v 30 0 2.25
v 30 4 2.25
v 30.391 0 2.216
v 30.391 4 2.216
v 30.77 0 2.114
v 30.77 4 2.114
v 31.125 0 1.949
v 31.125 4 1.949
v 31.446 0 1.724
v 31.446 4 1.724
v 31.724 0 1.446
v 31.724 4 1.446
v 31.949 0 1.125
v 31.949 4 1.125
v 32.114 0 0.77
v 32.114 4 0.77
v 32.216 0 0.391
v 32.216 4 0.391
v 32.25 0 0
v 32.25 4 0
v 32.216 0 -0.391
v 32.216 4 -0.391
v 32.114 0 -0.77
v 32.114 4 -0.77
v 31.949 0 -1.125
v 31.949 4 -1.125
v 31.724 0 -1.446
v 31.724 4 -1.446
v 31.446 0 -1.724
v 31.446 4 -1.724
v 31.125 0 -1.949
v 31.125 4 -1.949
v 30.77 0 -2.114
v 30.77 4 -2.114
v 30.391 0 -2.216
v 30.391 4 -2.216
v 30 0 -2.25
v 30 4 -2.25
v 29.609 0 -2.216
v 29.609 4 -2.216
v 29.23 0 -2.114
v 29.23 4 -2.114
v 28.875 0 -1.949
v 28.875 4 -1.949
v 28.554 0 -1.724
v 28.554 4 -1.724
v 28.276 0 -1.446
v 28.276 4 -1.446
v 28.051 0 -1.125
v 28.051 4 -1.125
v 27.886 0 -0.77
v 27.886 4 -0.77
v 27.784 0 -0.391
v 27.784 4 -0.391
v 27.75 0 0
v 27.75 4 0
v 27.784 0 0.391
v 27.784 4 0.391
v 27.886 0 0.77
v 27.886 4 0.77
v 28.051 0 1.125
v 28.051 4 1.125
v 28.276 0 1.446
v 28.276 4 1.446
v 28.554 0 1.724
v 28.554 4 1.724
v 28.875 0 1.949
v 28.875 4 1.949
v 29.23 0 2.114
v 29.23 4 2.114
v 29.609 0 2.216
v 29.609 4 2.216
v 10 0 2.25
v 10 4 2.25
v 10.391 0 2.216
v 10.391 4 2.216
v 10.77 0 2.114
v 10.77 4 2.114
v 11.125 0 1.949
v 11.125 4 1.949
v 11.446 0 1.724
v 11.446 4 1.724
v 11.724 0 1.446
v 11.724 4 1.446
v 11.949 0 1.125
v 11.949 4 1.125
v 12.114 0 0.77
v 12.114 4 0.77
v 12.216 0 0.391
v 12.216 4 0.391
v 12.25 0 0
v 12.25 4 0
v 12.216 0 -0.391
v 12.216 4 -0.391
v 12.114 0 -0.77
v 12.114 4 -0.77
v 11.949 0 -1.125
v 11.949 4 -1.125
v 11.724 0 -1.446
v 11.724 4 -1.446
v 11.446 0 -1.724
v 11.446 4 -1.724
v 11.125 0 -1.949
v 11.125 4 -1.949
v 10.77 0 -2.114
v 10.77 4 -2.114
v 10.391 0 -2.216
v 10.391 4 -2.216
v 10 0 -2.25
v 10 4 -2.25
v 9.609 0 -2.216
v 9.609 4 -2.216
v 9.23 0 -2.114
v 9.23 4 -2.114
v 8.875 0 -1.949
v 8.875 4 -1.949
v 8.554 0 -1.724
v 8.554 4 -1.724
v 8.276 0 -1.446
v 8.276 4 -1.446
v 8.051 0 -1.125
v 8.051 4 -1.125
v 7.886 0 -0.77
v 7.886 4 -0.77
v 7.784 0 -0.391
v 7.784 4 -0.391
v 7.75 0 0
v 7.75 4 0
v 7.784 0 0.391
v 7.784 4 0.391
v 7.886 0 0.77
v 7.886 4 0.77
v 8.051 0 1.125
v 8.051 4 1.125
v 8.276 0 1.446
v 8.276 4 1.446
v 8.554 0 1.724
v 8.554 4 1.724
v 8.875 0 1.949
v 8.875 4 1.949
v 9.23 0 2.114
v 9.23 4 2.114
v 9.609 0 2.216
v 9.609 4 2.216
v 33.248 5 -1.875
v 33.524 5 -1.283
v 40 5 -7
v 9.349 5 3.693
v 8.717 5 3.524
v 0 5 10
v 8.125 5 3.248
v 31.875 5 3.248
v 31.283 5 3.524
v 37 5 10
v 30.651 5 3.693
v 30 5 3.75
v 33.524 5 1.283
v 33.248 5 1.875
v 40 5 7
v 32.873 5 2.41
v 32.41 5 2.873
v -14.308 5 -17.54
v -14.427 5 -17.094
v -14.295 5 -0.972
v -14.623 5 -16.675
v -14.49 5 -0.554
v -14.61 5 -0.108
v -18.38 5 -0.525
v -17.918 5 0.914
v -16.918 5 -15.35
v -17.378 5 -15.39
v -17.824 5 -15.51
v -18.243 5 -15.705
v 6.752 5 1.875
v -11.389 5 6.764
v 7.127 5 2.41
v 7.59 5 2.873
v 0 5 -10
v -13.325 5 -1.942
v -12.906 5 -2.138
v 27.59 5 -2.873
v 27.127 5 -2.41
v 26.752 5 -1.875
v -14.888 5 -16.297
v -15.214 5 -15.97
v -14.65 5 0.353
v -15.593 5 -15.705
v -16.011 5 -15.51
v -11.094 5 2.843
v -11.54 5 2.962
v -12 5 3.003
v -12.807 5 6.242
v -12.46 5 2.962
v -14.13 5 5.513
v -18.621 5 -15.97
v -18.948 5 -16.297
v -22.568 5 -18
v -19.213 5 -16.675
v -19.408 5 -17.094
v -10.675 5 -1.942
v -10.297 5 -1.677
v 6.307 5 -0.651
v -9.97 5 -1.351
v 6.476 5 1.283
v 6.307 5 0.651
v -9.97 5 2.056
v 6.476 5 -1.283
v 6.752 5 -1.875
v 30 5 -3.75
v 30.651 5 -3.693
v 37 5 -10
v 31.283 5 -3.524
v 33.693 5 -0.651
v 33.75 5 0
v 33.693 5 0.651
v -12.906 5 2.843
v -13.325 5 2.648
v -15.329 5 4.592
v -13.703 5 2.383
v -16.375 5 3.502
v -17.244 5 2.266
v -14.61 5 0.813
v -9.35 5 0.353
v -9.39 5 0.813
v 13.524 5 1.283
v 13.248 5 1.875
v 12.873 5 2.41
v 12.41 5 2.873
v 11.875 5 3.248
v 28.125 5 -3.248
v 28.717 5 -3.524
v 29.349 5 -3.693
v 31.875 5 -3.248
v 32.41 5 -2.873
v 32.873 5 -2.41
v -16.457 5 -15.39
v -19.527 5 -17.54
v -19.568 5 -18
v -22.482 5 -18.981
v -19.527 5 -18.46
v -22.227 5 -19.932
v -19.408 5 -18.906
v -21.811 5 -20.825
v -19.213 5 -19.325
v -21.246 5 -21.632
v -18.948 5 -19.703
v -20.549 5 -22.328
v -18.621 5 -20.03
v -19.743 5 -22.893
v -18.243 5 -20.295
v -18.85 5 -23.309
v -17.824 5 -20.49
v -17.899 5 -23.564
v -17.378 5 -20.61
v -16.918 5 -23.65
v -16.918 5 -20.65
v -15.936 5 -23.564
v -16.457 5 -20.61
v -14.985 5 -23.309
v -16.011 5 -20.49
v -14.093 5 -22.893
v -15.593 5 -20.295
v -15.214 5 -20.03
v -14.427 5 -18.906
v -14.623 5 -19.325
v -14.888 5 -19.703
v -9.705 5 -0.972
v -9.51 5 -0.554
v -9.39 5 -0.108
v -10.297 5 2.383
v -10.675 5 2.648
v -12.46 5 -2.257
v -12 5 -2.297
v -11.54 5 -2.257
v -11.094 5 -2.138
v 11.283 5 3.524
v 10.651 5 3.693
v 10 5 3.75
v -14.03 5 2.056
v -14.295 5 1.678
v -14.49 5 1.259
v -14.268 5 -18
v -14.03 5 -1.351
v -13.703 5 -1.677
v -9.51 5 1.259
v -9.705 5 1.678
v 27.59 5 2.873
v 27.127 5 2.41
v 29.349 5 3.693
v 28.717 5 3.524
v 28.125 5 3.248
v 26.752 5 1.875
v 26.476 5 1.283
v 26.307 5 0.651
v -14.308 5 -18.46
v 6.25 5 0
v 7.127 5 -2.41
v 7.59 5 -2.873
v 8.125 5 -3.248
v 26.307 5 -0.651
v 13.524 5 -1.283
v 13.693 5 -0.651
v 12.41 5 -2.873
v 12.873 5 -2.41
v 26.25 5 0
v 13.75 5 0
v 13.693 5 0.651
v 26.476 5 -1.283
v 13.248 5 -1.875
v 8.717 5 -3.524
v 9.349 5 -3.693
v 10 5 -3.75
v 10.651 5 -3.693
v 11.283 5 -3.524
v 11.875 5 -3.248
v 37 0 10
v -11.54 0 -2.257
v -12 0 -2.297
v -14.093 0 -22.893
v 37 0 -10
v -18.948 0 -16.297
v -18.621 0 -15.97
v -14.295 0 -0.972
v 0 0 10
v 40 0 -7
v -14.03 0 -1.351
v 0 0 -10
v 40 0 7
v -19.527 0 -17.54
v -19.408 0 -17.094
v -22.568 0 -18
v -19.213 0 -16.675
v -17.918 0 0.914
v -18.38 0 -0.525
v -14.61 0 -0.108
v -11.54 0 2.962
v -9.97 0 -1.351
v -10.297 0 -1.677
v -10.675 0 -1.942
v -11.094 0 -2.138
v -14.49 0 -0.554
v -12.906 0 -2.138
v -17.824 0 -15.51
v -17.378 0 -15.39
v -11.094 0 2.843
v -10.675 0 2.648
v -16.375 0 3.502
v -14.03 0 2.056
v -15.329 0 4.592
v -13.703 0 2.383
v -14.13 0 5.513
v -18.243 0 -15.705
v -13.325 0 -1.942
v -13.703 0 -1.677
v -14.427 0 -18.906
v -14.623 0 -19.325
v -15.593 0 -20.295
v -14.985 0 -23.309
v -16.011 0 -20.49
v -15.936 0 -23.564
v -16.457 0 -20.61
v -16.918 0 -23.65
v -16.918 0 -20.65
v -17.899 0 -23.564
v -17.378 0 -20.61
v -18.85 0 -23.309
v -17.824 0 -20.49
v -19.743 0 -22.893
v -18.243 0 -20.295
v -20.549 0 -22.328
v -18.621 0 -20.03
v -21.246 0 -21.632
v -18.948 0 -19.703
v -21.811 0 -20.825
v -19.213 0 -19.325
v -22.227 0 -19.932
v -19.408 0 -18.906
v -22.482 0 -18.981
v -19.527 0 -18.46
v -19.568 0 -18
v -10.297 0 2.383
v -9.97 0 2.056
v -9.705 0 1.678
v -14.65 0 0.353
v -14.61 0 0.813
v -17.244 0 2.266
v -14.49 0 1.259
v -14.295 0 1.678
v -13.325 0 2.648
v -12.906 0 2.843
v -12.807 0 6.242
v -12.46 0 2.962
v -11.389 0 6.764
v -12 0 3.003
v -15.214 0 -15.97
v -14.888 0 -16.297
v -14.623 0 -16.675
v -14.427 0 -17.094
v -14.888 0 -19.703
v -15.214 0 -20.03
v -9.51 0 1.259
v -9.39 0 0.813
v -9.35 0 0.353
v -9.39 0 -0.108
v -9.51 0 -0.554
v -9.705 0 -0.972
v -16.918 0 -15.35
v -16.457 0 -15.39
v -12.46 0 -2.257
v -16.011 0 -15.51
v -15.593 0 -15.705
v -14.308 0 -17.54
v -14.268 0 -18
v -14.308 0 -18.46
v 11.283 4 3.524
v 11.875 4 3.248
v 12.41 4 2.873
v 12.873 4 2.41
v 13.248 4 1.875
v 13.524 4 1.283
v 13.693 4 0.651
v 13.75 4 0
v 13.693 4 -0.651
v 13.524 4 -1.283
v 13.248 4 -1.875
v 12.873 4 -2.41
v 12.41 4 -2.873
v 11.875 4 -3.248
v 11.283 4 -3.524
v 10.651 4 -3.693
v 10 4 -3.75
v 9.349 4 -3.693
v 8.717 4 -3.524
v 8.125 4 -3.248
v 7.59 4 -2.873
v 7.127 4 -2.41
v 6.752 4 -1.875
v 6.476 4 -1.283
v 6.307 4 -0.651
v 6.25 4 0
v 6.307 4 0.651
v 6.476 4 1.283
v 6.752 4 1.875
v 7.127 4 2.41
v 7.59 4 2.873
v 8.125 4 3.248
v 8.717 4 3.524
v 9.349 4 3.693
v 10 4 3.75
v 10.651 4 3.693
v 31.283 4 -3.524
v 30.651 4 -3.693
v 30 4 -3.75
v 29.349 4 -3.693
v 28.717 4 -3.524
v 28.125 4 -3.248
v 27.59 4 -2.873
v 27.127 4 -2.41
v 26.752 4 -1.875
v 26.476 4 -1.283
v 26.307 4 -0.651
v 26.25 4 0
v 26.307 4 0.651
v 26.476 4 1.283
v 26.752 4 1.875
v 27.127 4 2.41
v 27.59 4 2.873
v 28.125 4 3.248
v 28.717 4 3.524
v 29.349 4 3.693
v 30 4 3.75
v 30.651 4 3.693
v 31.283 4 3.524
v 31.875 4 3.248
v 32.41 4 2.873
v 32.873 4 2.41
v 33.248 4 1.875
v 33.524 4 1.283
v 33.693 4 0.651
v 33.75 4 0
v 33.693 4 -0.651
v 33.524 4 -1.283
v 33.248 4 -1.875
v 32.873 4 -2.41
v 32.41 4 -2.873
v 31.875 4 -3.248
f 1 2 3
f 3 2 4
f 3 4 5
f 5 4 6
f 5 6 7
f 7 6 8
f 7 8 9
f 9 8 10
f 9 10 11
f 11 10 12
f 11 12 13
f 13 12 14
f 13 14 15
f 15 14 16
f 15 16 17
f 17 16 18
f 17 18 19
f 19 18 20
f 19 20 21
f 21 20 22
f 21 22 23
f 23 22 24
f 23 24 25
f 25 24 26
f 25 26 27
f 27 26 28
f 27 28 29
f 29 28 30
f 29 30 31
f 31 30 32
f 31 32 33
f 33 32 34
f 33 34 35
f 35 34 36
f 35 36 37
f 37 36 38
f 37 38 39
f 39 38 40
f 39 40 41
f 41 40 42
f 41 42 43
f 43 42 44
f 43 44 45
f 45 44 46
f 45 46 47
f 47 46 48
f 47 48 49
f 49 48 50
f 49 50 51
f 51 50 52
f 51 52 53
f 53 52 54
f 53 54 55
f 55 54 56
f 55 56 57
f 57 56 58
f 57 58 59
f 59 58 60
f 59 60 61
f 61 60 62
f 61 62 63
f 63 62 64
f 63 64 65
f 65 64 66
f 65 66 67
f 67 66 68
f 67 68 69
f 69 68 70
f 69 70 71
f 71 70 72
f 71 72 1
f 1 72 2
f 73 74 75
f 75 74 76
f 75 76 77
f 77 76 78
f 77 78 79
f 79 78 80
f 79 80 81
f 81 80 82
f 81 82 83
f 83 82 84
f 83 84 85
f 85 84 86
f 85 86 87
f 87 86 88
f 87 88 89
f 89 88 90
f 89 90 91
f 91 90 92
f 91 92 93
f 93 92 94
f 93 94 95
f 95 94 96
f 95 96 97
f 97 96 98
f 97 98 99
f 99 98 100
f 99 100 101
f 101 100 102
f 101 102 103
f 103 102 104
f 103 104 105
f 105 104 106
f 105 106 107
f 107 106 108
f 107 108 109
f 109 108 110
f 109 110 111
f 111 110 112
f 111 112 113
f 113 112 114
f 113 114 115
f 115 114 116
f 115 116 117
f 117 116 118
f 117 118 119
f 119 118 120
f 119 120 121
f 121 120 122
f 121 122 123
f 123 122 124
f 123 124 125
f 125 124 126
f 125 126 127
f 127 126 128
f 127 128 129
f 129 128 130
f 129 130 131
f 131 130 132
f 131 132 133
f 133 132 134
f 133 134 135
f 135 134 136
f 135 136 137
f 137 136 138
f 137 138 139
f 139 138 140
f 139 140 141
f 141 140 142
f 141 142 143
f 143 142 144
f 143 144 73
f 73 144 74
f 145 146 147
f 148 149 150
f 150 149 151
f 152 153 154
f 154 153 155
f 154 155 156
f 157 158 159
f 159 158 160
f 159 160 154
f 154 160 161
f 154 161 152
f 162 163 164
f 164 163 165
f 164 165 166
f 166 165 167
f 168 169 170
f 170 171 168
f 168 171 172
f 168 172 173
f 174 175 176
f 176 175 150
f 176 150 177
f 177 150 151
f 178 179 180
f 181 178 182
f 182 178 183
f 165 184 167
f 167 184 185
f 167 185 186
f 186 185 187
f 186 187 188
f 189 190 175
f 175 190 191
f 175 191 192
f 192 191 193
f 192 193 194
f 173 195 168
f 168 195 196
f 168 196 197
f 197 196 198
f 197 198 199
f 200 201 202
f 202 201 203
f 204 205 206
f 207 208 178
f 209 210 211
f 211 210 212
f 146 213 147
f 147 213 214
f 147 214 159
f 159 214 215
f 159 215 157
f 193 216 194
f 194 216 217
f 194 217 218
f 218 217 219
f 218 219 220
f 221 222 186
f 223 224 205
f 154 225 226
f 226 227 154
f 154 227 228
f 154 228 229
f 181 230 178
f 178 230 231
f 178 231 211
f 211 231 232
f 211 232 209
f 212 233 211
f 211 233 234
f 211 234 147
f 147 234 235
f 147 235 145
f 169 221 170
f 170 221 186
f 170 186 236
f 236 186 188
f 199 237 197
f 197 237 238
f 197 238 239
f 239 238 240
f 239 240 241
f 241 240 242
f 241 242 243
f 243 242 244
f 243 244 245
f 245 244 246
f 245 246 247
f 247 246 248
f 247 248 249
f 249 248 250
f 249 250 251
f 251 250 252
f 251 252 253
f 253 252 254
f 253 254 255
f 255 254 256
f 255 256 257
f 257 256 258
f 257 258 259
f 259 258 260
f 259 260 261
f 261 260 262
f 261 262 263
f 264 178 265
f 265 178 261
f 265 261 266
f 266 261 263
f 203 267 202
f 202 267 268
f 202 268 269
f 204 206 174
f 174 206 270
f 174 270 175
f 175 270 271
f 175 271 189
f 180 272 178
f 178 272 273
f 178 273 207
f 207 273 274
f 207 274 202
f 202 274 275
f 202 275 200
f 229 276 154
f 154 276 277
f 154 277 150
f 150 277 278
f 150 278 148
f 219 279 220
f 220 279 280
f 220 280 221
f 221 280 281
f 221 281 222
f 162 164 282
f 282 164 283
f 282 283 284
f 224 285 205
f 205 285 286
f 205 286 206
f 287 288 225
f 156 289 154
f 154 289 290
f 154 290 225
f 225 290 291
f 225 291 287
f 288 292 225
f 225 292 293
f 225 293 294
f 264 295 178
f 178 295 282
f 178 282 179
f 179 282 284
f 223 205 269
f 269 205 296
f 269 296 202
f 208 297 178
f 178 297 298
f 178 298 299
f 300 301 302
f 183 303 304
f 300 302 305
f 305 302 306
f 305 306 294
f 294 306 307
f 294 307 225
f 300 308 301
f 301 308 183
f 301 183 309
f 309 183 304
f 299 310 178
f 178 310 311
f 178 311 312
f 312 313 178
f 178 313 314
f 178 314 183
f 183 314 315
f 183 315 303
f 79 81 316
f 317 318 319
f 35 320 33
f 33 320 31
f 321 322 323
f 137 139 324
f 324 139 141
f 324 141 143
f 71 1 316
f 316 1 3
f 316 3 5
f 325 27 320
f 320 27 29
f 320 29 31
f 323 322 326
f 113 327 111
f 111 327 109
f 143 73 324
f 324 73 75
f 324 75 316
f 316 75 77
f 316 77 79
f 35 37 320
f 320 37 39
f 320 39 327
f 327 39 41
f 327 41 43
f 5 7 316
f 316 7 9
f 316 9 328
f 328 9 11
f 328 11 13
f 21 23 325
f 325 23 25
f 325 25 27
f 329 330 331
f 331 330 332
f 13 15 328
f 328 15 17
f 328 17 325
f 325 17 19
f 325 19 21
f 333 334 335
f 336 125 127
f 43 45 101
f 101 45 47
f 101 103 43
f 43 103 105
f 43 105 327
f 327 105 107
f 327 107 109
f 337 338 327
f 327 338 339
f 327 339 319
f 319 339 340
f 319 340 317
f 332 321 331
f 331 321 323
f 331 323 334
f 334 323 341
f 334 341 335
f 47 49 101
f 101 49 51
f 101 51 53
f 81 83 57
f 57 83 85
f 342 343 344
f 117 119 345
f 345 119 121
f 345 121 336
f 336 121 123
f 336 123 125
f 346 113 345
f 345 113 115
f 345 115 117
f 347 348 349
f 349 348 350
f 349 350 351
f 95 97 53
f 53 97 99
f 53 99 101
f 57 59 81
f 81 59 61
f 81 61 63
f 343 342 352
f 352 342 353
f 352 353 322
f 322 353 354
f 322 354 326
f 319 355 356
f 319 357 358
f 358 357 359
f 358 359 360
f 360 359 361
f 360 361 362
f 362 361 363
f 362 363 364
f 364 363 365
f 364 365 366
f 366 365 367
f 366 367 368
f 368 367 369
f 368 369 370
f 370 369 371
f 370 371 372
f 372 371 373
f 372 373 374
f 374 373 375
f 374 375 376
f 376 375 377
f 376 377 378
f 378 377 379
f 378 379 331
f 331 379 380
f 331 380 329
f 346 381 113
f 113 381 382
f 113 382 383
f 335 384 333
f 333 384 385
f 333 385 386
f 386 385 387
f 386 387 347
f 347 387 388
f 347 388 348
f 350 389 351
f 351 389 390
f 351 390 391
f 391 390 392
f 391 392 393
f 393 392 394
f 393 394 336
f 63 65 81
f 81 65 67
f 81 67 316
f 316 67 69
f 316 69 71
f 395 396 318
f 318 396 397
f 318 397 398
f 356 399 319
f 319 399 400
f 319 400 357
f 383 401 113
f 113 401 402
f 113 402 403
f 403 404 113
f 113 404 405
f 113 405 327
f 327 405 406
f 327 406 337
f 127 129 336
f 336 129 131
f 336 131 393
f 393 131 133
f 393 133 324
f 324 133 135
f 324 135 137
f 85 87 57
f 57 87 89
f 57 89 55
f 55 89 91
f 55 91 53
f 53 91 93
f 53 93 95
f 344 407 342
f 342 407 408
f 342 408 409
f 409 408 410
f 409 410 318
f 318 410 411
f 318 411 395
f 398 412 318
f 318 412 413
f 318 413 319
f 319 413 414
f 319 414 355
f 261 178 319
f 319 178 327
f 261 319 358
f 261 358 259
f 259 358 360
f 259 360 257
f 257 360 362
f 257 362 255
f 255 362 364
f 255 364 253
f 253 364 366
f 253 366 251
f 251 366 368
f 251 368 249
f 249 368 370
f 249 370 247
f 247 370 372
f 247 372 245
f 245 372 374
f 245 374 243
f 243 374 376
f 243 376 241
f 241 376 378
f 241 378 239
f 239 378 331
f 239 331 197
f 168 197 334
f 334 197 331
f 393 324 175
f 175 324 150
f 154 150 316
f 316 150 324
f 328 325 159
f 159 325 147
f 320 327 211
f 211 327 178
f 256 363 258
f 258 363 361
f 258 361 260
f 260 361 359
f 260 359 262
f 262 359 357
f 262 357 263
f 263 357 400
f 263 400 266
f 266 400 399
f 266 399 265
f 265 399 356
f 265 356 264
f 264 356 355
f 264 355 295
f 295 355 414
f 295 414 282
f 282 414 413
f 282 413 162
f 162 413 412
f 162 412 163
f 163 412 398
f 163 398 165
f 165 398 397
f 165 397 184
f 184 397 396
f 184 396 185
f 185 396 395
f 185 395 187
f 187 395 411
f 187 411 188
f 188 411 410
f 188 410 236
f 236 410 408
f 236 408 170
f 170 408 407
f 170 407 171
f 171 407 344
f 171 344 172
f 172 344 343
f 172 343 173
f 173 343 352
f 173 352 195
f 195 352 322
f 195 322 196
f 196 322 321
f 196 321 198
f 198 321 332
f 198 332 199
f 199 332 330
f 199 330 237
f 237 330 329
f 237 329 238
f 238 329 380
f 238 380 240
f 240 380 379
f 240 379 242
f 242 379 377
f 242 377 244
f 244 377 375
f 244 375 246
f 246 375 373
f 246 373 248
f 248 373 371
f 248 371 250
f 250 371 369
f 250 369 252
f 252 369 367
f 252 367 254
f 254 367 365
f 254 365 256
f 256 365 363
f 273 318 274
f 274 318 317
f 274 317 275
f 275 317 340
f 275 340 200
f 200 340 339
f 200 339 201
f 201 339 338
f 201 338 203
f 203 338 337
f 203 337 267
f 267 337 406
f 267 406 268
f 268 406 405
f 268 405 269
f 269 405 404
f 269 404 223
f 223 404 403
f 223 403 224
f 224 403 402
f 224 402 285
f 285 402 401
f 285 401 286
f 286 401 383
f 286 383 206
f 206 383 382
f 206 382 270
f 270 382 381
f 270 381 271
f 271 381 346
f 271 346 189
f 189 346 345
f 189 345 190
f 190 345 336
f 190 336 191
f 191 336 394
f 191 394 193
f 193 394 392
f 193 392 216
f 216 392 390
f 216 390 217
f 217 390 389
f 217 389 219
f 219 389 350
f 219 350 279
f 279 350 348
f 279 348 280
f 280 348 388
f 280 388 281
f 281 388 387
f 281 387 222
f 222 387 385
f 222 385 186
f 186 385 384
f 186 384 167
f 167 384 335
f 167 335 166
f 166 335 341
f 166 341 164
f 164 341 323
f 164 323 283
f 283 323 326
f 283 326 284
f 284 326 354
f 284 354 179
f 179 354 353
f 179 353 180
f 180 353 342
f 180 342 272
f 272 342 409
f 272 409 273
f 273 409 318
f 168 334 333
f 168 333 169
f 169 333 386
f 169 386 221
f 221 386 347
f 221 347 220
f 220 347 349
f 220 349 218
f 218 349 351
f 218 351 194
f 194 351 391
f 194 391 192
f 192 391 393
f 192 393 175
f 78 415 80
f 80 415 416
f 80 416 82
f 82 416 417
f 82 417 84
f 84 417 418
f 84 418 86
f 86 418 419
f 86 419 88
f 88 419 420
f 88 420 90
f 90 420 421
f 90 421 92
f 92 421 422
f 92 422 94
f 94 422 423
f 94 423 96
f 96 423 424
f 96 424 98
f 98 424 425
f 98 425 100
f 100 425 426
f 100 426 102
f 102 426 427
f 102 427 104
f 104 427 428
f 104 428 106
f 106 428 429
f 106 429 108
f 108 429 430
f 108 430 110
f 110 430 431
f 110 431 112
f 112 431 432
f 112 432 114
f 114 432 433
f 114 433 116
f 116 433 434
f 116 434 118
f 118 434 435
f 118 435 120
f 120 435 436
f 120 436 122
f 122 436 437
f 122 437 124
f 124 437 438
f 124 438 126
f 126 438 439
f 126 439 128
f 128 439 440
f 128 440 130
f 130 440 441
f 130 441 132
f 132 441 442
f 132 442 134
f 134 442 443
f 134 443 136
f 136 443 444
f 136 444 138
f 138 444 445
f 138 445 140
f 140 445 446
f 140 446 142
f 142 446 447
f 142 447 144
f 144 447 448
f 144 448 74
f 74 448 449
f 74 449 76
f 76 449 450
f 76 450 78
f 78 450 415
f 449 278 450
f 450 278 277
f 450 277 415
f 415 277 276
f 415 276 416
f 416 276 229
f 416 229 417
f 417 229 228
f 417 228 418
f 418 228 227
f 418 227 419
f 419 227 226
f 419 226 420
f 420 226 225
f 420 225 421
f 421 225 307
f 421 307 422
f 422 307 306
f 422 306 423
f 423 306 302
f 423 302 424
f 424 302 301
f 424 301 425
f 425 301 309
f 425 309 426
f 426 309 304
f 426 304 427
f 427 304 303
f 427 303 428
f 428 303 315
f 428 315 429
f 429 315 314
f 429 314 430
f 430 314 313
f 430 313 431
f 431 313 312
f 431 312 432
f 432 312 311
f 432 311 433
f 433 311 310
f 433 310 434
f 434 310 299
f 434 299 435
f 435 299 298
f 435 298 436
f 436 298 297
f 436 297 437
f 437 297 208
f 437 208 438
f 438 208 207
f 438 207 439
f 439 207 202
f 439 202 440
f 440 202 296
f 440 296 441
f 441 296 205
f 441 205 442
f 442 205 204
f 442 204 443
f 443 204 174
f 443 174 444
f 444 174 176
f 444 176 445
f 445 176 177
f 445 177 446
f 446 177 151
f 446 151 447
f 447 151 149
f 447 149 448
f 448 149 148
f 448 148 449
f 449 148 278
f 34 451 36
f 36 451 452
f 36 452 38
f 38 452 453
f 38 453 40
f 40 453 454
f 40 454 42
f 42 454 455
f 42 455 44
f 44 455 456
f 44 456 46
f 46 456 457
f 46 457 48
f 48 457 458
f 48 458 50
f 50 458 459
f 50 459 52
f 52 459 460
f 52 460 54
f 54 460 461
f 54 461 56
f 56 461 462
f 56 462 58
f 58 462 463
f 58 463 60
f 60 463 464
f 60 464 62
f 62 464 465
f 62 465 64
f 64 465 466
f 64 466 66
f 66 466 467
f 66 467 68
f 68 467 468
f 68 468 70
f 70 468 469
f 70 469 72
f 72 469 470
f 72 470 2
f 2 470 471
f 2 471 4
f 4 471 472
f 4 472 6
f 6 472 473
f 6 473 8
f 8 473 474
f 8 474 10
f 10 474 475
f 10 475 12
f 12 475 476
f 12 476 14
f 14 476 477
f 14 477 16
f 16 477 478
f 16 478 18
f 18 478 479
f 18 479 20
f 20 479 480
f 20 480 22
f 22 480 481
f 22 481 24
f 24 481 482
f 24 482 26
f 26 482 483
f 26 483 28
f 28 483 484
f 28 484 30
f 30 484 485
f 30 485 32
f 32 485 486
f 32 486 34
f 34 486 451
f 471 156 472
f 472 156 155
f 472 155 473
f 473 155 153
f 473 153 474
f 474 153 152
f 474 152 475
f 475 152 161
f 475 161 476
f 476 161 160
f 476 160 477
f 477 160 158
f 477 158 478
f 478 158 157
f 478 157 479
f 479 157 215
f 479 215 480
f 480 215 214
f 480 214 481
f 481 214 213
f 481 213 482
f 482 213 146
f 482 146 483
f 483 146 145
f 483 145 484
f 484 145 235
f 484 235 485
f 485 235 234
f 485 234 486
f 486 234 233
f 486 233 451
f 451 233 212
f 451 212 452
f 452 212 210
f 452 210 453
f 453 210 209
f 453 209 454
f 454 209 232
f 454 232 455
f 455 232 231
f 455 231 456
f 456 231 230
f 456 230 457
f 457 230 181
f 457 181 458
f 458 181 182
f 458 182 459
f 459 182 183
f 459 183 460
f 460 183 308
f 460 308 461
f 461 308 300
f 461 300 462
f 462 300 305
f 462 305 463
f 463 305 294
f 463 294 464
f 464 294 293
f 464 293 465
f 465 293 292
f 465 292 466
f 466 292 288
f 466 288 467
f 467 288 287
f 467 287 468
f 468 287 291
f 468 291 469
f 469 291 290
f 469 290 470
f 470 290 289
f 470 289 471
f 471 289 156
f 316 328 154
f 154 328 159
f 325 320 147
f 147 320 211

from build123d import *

# Parameters (mm, degrees)
SKETCH1_R           = 2.65
BOSS_EXTRUDE1_DEPTH = 5
CUT_EXTRUDE2_REACH  = 7
SKETCH3_R           = 2.25
FILLET1_R           = 10
SKETCH4_R           = 3.75
CUT_EXTRUDE3_DEPTH  = 1
CHAMFER1_SIZE       = 3


with BuildPart() as part:
    # Sketch1 → Boss-Extrude1 (new body)
    with BuildSketch(Plane(origin=(0, 0, 0), x_dir=(1, 0, 0), z_dir=(0, 1, 0))):
        with BuildLine():
            Line((0, 10), (40, 10))
            Line((40, 10), (40, -10))
            Line((40, -10), (0, -10))
            Line((0, -10), (-17.016791442, -5.164570129))
            Line((-17.016791442, -5.164570129), (-22.567561857, 18))
            ThreePointArc((-22.567561857, 18), (-19.742561857, 22.893043531), (-14.092561857, 22.893043531))
            Line((-14.092561857, 22.893043531), (0, 10))
        make_face()
        with Locations((-16.917561857, 18)):
            Circle(SKETCH1_R, mode=Mode.SUBTRACT)
        with Locations((-12, -0.352590699)):
            Circle(SKETCH1_R, mode=Mode.SUBTRACT)
    extrude(amount=BOSS_EXTRUDE1_DEPTH)

    # Sketch3 → Cut-Extrude2 (cut, up to next)
    with BuildSketch(Plane(origin=(0, 5, 0), x_dir=(1, 0, 0), z_dir=(0, 1, 0)), mode=Mode.PRIVATE) as cut_extrude2_sk1:
        with Locations((10, 0)):
            Circle(SKETCH3_R)
    cut_extrude2_tool1 = extrude(cut_extrude2_sk1.sketch, amount=-CUT_EXTRUDE2_REACH, mode=Mode.PRIVATE) & part.part
    add(cut_extrude2_tool1.solids().sort_by_distance((10, 5, 0))[0], mode=Mode.SUBTRACT)
    # Sketch3 → Cut-Extrude2 (cut, up to next)
    with BuildSketch(Plane(origin=(0, 5, 0), x_dir=(1, 0, 0), z_dir=(0, 1, 0)), mode=Mode.PRIVATE) as cut_extrude2_sk2:
        with Locations((30, 0)):
            Circle(SKETCH3_R)
    cut_extrude2_tool2 = extrude(cut_extrude2_sk2.sketch, amount=-CUT_EXTRUDE2_REACH, mode=Mode.PRIVATE) & part.part
    add(cut_extrude2_tool2.solids().sort_by_distance((30, 5, 0))[0], mode=Mode.SUBTRACT)

    # Fillet1
    fillet1_edges = [part.edges().sort_by_distance(p)[0] for p in [
        (-17.016791442, 2.5, 5.164570129),
    ]]
    fillet(fillet1_edges, radius=FILLET1_R)

    # Sketch4 → Cut-Extrude3 (cut)
    with BuildSketch(Plane(origin=(0, 5, 0), x_dir=(1, 0, 0), z_dir=(0, 1, 0))):
        with Locations((10, 0)):
            Circle(SKETCH4_R)
        with Locations((30, 0)):
            Circle(SKETCH4_R)
    extrude(amount=-CUT_EXTRUDE3_DEPTH, mode=Mode.SUBTRACT)

    # Chamfer1
    chamfer1_edges = [part.edges().sort_by_distance(p)[0] for p in [
        (40, 2.5, -10),
        (40, 2.5, 10),
    ]]
    chamfer(chamfer1_edges, length=CHAMFER1_SIZE)


solid = part.part
